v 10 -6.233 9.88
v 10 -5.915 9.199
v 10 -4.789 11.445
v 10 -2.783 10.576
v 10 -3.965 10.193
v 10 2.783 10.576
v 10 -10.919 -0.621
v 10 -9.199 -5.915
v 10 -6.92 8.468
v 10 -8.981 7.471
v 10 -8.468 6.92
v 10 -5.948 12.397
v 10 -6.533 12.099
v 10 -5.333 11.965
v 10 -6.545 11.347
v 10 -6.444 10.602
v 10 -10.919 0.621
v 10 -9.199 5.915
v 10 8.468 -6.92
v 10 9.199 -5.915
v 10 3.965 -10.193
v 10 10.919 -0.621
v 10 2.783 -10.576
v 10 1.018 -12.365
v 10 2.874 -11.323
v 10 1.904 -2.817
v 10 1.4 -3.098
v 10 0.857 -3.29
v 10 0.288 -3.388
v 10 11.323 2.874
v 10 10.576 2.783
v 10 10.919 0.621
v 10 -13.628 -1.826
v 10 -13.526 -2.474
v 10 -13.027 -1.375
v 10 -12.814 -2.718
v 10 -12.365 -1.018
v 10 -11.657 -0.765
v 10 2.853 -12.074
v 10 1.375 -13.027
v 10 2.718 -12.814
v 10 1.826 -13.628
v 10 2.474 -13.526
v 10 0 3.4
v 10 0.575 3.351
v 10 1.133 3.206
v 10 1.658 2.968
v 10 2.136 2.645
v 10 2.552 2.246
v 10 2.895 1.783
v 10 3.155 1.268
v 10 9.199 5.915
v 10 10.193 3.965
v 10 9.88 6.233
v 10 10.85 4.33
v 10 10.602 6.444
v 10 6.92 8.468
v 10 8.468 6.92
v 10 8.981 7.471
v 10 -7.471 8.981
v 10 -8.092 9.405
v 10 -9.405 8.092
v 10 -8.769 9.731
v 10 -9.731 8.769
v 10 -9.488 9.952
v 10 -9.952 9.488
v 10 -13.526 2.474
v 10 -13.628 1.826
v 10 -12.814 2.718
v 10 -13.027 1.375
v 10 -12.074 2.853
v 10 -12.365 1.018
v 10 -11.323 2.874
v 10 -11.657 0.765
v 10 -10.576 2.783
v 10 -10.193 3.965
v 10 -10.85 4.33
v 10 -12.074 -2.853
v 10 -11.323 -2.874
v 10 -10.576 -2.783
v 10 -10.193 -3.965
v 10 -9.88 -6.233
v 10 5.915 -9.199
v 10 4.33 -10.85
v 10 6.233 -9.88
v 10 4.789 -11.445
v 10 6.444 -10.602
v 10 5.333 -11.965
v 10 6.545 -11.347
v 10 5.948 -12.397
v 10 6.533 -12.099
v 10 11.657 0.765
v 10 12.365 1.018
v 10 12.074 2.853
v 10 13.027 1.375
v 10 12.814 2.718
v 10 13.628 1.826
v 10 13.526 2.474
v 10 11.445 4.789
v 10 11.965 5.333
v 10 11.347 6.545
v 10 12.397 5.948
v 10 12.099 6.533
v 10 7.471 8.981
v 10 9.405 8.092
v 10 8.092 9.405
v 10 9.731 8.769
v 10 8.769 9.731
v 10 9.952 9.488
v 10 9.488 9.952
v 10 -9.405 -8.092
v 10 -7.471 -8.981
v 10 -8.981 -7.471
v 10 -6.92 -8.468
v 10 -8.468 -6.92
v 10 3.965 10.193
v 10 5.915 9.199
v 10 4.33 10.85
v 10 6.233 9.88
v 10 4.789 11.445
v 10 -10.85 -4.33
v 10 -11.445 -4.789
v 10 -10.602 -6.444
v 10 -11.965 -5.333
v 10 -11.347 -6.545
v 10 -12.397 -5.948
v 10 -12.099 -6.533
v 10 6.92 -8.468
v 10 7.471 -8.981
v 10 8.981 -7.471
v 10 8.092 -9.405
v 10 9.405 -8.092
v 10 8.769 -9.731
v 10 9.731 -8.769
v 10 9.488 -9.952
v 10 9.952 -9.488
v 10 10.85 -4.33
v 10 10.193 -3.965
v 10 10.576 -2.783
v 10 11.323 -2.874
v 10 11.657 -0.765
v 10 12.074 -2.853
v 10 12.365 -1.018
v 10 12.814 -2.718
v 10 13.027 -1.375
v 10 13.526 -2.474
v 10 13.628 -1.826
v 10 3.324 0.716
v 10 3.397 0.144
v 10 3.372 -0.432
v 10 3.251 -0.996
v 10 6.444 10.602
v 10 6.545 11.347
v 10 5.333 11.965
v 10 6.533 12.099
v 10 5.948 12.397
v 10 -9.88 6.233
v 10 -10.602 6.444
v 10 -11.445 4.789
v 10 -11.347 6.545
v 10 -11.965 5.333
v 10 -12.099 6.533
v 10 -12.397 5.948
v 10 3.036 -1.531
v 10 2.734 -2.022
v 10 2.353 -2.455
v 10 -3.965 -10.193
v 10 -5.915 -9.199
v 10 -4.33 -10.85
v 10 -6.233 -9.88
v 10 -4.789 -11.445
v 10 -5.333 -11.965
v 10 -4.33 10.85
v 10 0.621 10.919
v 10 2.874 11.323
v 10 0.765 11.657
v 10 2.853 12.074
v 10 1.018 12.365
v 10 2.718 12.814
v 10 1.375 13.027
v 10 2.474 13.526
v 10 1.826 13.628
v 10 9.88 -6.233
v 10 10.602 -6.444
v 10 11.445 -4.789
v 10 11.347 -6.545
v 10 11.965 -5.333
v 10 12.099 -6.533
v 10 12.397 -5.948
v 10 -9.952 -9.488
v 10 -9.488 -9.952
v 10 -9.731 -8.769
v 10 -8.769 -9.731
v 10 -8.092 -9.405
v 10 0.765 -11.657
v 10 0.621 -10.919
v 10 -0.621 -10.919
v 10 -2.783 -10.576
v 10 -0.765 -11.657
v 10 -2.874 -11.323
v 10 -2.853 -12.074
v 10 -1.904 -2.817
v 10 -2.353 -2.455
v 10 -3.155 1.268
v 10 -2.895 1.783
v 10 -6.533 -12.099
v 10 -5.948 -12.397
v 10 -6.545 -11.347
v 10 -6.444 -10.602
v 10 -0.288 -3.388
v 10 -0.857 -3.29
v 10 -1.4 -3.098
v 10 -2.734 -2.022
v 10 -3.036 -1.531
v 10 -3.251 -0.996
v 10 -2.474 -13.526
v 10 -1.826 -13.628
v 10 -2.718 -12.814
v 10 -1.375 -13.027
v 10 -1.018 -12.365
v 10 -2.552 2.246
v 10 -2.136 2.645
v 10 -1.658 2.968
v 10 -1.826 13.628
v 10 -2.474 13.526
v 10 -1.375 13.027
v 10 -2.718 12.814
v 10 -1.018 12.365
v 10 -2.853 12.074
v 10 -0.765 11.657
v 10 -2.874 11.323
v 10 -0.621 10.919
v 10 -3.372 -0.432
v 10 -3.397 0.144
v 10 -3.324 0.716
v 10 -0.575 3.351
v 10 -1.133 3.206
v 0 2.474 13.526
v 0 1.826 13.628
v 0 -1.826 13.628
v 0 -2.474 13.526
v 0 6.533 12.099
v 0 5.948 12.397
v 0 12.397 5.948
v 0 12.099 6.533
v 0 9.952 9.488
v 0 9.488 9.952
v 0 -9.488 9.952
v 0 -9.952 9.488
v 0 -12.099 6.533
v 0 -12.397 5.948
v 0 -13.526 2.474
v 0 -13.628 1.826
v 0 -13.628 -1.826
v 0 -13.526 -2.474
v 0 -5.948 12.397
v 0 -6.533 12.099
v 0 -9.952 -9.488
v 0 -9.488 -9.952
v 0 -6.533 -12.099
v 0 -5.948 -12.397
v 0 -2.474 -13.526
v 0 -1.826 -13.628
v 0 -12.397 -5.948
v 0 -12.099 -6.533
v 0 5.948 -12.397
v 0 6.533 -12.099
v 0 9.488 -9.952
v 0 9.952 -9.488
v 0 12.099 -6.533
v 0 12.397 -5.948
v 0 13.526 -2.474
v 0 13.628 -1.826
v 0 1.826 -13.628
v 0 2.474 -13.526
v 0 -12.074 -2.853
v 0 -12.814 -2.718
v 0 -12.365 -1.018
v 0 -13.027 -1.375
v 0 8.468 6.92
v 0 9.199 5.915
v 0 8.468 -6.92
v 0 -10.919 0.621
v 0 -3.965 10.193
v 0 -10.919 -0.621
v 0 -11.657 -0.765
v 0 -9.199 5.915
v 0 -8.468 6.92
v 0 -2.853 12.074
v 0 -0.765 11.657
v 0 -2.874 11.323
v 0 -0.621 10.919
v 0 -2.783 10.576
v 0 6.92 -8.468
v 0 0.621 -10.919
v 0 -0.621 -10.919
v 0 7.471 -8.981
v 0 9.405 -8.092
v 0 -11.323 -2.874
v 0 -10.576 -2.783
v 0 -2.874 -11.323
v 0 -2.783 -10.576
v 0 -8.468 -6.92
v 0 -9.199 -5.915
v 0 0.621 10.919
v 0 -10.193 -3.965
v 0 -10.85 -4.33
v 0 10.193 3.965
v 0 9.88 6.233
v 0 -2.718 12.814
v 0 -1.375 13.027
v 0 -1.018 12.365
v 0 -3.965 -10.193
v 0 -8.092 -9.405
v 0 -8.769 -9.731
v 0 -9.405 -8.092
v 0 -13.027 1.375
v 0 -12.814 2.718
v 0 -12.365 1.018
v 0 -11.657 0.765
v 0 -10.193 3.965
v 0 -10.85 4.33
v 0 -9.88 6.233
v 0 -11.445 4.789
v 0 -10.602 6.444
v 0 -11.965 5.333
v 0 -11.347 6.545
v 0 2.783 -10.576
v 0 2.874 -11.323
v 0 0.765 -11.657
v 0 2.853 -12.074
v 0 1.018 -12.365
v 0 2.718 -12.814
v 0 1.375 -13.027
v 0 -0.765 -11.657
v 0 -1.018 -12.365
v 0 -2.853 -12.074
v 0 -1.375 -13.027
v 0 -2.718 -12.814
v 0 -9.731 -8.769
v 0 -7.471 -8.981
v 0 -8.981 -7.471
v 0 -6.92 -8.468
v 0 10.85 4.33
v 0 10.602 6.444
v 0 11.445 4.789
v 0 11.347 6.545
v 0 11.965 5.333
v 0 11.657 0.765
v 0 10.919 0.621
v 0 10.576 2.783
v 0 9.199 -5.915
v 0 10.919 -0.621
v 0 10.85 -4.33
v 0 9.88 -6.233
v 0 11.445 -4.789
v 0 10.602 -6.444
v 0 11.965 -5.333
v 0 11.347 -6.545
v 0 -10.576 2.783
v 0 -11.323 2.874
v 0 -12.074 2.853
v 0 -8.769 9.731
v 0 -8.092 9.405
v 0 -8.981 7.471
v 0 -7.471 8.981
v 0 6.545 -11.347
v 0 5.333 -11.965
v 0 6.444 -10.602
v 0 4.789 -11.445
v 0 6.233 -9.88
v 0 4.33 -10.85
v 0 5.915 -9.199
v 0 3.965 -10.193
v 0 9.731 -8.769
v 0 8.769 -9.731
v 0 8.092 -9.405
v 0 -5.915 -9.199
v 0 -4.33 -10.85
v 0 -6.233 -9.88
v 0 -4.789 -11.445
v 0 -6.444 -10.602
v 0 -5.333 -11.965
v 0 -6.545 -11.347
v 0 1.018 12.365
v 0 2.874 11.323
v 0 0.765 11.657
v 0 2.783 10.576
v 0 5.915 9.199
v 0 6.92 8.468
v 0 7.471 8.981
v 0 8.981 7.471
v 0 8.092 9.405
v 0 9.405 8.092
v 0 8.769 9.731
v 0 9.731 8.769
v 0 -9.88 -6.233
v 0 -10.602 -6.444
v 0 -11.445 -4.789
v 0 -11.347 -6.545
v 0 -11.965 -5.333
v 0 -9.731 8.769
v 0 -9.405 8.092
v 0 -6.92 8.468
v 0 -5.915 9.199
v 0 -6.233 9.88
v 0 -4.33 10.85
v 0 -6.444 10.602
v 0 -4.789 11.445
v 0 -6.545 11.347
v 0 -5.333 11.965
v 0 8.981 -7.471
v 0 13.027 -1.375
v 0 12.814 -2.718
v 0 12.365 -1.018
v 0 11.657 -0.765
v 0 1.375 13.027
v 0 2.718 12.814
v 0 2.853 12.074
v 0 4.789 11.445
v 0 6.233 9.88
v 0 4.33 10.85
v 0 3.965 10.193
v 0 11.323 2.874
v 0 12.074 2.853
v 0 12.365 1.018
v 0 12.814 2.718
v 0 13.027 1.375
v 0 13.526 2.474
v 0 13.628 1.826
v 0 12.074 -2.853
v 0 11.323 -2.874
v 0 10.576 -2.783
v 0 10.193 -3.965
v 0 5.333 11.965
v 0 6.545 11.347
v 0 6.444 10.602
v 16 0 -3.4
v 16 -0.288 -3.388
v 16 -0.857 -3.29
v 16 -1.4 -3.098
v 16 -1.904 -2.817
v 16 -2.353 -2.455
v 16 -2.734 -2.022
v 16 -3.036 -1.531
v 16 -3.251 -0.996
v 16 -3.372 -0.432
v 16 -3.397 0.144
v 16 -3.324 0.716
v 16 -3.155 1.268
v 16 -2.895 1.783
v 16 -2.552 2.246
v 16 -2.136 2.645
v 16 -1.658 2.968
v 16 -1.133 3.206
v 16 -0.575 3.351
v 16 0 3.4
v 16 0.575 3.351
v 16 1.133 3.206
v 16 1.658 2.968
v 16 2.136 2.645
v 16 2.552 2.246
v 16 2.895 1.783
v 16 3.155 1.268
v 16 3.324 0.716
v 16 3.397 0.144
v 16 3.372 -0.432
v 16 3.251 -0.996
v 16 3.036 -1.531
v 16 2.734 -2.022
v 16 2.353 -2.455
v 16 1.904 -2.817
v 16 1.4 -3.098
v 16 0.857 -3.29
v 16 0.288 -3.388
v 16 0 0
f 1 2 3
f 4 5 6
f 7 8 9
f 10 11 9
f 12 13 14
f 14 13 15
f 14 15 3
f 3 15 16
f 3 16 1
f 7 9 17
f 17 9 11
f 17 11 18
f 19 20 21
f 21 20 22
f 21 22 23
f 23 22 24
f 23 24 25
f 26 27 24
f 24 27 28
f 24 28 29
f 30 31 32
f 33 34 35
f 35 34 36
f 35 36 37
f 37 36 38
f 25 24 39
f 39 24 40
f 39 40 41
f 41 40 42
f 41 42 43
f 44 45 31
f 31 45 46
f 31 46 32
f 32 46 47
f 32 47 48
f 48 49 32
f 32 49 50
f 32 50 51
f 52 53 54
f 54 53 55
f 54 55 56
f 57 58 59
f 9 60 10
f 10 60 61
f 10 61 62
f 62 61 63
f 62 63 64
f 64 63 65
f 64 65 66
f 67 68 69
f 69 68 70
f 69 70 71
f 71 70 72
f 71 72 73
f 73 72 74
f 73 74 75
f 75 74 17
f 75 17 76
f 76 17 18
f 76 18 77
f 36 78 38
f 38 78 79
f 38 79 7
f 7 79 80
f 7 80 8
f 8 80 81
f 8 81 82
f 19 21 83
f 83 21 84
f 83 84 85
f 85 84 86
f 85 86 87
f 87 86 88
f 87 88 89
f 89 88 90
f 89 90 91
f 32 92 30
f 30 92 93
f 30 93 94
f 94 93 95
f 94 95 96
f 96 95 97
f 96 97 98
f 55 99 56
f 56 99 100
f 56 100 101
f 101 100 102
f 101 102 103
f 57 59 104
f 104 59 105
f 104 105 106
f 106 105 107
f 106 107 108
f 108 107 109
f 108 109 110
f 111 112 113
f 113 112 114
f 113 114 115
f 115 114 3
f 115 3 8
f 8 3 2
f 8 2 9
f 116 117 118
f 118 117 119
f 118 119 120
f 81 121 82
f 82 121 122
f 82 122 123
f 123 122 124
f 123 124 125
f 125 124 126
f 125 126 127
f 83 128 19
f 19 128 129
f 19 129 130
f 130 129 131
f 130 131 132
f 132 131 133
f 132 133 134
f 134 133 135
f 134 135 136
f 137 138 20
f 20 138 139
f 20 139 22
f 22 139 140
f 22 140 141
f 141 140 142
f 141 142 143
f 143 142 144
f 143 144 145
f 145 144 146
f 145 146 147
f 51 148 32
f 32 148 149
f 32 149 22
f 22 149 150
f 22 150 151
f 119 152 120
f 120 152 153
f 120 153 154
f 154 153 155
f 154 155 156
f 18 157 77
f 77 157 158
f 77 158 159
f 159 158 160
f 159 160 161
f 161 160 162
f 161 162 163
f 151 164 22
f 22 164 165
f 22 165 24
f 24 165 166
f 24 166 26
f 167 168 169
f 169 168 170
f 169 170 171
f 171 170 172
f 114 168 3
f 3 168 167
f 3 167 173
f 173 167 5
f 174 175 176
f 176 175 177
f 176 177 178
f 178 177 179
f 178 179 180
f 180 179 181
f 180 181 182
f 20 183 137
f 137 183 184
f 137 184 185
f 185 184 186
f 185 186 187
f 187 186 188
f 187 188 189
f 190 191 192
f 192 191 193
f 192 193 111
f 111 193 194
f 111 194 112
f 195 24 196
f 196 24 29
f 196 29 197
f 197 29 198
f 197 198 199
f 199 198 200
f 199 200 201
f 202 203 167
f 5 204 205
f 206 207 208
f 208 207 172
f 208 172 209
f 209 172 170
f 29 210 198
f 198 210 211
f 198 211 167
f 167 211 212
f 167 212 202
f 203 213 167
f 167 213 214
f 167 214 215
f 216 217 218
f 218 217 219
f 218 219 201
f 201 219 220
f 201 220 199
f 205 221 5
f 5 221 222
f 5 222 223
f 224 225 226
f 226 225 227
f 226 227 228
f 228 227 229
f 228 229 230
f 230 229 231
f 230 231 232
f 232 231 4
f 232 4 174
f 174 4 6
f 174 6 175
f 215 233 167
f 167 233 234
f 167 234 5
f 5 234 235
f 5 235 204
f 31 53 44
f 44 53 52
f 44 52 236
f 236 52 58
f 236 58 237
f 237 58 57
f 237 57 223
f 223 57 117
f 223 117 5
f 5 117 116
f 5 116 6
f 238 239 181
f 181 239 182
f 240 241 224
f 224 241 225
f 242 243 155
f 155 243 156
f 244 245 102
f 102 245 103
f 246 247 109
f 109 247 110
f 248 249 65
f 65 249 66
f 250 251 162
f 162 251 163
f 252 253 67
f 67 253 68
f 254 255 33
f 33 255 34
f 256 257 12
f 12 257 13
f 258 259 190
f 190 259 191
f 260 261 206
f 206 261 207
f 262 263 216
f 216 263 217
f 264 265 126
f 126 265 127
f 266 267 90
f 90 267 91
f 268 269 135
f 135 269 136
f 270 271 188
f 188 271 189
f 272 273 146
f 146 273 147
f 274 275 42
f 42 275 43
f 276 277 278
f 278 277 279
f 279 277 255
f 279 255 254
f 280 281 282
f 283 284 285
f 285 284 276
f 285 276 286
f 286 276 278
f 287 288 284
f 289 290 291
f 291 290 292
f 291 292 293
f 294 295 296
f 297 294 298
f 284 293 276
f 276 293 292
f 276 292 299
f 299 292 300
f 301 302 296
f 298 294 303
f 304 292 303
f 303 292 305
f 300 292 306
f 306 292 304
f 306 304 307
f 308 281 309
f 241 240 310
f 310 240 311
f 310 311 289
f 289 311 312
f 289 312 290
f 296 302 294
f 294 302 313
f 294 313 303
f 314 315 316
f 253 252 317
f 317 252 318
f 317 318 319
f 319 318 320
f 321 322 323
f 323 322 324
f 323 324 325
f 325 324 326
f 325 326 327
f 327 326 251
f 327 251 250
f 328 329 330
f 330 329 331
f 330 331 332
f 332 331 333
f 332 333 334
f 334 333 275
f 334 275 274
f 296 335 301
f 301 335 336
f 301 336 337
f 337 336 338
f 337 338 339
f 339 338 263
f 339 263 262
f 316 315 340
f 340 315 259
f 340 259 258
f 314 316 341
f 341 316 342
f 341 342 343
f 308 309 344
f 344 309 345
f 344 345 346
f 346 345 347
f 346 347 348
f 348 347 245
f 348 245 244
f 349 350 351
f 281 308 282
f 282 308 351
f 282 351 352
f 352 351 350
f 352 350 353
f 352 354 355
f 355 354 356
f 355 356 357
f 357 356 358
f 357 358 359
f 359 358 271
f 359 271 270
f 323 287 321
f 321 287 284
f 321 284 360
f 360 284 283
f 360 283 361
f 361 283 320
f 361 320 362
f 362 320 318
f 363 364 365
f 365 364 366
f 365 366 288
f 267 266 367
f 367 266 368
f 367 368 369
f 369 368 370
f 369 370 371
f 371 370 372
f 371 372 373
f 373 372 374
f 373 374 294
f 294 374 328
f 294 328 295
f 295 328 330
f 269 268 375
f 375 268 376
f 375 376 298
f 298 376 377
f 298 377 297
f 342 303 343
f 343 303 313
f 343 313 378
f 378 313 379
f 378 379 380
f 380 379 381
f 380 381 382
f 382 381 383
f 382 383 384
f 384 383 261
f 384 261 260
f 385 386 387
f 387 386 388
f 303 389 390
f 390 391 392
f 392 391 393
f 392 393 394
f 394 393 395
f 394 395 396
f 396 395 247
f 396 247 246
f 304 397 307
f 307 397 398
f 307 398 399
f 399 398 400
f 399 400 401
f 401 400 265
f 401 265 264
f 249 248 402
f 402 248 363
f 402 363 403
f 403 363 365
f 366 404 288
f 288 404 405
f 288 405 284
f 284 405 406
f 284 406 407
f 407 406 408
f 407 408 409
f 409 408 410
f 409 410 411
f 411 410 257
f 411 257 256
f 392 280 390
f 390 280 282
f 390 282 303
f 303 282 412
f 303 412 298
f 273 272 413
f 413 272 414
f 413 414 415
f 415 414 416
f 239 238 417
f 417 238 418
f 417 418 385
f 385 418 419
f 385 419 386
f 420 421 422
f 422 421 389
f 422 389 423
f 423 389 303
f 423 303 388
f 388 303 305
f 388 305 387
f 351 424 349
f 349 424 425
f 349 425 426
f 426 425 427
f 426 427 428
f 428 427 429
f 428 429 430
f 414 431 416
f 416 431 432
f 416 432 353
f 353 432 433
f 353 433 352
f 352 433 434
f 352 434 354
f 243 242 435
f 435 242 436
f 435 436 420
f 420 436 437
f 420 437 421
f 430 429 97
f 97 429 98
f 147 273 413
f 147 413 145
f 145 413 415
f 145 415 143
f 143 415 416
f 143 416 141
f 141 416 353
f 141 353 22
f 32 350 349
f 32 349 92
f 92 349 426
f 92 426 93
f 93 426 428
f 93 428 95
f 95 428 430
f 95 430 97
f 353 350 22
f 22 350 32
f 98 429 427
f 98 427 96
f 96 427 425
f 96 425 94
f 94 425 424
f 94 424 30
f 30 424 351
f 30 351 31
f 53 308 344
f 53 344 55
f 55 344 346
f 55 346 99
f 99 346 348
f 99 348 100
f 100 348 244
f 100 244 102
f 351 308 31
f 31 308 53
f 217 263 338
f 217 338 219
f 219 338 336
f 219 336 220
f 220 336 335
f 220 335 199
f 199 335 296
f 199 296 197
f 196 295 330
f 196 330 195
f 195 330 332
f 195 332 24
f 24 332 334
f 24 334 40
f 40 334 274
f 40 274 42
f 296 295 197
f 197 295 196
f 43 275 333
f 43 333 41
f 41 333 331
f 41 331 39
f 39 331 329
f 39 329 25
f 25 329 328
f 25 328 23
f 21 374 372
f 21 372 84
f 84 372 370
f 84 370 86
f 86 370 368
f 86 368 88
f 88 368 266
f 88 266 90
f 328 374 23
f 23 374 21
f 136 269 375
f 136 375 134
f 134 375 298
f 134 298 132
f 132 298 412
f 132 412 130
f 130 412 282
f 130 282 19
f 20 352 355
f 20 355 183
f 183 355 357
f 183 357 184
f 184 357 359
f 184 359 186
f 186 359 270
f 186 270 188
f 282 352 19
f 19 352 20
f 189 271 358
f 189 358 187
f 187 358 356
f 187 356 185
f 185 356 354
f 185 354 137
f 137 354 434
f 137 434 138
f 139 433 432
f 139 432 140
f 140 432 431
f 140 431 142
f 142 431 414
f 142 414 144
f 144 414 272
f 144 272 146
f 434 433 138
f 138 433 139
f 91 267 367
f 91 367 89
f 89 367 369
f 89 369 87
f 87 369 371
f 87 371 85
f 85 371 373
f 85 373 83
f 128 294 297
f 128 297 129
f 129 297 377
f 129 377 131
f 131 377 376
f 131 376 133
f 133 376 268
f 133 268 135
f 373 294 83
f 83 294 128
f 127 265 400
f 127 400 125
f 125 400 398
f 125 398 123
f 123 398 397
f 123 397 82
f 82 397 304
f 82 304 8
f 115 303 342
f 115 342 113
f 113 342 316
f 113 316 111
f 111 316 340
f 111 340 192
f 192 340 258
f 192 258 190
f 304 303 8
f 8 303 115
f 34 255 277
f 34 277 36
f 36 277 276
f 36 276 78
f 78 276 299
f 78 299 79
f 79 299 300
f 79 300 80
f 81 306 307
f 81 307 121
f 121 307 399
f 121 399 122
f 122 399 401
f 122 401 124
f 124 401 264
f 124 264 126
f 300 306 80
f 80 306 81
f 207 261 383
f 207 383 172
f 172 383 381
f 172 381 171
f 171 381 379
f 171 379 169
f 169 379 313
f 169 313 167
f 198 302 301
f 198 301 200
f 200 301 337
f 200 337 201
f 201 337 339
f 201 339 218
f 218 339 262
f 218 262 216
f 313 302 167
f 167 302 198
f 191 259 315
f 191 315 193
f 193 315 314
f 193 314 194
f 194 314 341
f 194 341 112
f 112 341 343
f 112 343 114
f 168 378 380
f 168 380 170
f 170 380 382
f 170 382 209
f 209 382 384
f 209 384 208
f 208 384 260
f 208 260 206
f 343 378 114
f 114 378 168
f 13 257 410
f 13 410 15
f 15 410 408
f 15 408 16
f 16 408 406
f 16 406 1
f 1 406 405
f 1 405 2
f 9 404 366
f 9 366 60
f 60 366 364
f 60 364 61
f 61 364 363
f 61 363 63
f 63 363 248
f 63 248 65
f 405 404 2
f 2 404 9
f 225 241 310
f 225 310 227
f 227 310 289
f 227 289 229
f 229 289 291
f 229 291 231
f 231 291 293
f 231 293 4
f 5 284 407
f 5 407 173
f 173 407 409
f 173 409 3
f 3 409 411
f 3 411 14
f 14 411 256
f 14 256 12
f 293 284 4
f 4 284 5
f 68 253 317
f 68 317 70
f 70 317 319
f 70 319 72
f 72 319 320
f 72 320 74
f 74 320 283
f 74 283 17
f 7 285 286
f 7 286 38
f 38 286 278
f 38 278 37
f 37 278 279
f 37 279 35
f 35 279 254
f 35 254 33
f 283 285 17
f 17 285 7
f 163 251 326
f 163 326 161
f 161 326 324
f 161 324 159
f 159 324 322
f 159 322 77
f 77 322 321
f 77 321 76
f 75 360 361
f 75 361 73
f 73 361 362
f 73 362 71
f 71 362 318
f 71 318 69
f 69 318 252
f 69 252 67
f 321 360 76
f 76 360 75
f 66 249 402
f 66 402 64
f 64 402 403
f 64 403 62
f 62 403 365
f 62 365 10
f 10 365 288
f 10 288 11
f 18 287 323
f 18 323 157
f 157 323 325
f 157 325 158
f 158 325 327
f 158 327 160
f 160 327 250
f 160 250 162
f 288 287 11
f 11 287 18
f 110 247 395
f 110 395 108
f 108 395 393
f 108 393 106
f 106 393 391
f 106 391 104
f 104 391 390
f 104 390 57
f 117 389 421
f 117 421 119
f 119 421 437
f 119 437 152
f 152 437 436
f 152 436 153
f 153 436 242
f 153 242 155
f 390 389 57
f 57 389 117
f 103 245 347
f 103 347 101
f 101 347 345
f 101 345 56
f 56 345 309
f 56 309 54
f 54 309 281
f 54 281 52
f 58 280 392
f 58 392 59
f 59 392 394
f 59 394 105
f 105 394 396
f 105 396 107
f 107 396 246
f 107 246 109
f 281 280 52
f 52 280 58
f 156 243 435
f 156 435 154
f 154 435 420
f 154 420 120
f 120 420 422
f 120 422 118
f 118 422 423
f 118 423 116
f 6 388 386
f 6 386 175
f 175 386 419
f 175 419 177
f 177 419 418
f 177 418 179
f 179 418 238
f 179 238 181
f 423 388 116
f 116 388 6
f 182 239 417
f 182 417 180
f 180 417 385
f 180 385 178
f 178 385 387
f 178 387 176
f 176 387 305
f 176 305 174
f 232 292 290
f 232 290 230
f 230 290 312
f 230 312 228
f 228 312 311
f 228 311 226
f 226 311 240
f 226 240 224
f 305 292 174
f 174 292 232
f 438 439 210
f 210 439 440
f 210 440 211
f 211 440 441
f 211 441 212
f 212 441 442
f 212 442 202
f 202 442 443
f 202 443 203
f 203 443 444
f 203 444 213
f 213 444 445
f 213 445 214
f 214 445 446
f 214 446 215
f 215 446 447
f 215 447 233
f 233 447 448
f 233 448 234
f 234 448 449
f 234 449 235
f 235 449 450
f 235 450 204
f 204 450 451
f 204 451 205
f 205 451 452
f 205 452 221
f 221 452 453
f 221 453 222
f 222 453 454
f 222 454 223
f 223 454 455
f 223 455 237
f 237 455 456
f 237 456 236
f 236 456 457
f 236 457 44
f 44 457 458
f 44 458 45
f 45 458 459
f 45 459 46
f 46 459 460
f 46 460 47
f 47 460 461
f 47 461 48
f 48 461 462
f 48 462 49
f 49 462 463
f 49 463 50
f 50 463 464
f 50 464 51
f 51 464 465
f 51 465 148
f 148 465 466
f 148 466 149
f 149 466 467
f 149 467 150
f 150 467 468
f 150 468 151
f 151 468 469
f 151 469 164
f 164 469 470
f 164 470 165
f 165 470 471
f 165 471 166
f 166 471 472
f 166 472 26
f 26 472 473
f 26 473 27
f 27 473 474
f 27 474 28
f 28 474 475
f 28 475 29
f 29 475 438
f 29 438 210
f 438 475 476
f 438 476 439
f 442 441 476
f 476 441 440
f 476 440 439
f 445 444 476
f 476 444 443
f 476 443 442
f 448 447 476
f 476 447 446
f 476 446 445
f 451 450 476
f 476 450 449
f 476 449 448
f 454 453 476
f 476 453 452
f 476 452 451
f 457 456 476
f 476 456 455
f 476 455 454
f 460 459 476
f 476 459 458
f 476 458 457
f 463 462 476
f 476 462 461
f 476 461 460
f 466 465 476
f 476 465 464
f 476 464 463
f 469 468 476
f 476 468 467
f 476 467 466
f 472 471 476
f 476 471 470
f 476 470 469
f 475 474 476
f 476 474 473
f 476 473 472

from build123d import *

# Parameters (mm, degrees)
BASPROSKE_W         = 10
BASPROSKE_H         = 13.75
TOOTHCUT_DEPTH      = 22.866069606
TEETHCUTS_COUNT     = 20
TEETHCUTS_ANGLE     = 342
BORSKE_R            = 2
BORE_DEPTH          = 50.0000508
SKETCH2_R           = 2
BOSS_EXTRUDE1_DEPTH = 10
SKETCH3_R           = 3.4
BOSS_EXTRUDE2_DEPTH = 6


with BuildPart() as part:
    # BasProSke → Base-Revolve (revolve)
    with BuildSketch(Plane(origin=(0, 0, 0), x_dir=(1, 0, 0), z_dir=(0, 1, 0)), mode=Mode.PRIVATE) as base_revolve_sk:
        with Locations((5, 6.875)):
            Rectangle(BASPROSKE_W, BASPROSKE_H)
    revolve(base_revolve_sk.sketch.rotate(Axis((-10, 0, 0), (1, 0, 0)), 180), axis=Axis((-10, 0, 0), (1, 0, 0)))

    # TooCutSke → ToothCut (cut, through all)
    with BuildSketch(Plane(origin=(0, 0, 0), x_dir=(0, 0, -1), z_dir=(1, 0, 0))):
        with BuildLine():
            ThreePointArc((0.62110296, 10.918848994), (0, 10.9365), (-0.62110296, 10.918848994))
            ThreePointArc((-0.62110296, 10.918848994), (-1.024517052, 12.378857135), (-1.846615859, 13.651067908))
            ThreePointArc((-1.846615859, 13.651067908), (0, 13.7754), (1.846615859, 13.651067908))
            ThreePointArc((1.846615859, 13.651067908), (1.024517052, 12.378857135), (0.62110296, 10.918848994))
        make_face()
    toothcut = extrude(amount=TOOTHCUT_DEPTH, mode=Mode.SUBTRACT)

    # TeethCuts: ToothCut ×20 about axis
    teethcuts_axis = Axis((-10, 0, 0), (1, 0, 0))
    for i in range(1, TEETHCUTS_COUNT):
        add(toothcut.rotate(teethcuts_axis, i * TEETHCUTS_ANGLE / (TEETHCUTS_COUNT - 1)), mode=Mode.SUBTRACT)

    # BorSke → Bore (cut, symmetric)
    with BuildSketch(Plane(origin=(0, 0, 0), x_dir=(0, 0, -1), z_dir=(1, 0, 0))):
        with Locations(Location((0, 0, 0), (0, 0, 180))):
            Circle(BORSKE_R)
    extrude(amount=BORE_DEPTH, both=True, mode=Mode.SUBTRACT)

    # Sketch2 → Boss-Extrude1 (add)
    with BuildSketch(Plane(origin=(10, 0, 0), x_dir=(0, 0, -1), z_dir=(1, 0, 0))):
        Circle(SKETCH2_R)
    extrude(amount=-BOSS_EXTRUDE1_DEPTH)

    # Sketch3 → Boss-Extrude2 (add)
    with BuildSketch(Plane(origin=(10, 0, 0), x_dir=(0, 0, -1), z_dir=(1, 0, 0))):
        with Locations(Location((0, 0, 0), (0, 0, 180))):
            Circle(SKETCH3_R)
    extrude(amount=BOSS_EXTRUDE2_DEPTH)


solid = part.part
